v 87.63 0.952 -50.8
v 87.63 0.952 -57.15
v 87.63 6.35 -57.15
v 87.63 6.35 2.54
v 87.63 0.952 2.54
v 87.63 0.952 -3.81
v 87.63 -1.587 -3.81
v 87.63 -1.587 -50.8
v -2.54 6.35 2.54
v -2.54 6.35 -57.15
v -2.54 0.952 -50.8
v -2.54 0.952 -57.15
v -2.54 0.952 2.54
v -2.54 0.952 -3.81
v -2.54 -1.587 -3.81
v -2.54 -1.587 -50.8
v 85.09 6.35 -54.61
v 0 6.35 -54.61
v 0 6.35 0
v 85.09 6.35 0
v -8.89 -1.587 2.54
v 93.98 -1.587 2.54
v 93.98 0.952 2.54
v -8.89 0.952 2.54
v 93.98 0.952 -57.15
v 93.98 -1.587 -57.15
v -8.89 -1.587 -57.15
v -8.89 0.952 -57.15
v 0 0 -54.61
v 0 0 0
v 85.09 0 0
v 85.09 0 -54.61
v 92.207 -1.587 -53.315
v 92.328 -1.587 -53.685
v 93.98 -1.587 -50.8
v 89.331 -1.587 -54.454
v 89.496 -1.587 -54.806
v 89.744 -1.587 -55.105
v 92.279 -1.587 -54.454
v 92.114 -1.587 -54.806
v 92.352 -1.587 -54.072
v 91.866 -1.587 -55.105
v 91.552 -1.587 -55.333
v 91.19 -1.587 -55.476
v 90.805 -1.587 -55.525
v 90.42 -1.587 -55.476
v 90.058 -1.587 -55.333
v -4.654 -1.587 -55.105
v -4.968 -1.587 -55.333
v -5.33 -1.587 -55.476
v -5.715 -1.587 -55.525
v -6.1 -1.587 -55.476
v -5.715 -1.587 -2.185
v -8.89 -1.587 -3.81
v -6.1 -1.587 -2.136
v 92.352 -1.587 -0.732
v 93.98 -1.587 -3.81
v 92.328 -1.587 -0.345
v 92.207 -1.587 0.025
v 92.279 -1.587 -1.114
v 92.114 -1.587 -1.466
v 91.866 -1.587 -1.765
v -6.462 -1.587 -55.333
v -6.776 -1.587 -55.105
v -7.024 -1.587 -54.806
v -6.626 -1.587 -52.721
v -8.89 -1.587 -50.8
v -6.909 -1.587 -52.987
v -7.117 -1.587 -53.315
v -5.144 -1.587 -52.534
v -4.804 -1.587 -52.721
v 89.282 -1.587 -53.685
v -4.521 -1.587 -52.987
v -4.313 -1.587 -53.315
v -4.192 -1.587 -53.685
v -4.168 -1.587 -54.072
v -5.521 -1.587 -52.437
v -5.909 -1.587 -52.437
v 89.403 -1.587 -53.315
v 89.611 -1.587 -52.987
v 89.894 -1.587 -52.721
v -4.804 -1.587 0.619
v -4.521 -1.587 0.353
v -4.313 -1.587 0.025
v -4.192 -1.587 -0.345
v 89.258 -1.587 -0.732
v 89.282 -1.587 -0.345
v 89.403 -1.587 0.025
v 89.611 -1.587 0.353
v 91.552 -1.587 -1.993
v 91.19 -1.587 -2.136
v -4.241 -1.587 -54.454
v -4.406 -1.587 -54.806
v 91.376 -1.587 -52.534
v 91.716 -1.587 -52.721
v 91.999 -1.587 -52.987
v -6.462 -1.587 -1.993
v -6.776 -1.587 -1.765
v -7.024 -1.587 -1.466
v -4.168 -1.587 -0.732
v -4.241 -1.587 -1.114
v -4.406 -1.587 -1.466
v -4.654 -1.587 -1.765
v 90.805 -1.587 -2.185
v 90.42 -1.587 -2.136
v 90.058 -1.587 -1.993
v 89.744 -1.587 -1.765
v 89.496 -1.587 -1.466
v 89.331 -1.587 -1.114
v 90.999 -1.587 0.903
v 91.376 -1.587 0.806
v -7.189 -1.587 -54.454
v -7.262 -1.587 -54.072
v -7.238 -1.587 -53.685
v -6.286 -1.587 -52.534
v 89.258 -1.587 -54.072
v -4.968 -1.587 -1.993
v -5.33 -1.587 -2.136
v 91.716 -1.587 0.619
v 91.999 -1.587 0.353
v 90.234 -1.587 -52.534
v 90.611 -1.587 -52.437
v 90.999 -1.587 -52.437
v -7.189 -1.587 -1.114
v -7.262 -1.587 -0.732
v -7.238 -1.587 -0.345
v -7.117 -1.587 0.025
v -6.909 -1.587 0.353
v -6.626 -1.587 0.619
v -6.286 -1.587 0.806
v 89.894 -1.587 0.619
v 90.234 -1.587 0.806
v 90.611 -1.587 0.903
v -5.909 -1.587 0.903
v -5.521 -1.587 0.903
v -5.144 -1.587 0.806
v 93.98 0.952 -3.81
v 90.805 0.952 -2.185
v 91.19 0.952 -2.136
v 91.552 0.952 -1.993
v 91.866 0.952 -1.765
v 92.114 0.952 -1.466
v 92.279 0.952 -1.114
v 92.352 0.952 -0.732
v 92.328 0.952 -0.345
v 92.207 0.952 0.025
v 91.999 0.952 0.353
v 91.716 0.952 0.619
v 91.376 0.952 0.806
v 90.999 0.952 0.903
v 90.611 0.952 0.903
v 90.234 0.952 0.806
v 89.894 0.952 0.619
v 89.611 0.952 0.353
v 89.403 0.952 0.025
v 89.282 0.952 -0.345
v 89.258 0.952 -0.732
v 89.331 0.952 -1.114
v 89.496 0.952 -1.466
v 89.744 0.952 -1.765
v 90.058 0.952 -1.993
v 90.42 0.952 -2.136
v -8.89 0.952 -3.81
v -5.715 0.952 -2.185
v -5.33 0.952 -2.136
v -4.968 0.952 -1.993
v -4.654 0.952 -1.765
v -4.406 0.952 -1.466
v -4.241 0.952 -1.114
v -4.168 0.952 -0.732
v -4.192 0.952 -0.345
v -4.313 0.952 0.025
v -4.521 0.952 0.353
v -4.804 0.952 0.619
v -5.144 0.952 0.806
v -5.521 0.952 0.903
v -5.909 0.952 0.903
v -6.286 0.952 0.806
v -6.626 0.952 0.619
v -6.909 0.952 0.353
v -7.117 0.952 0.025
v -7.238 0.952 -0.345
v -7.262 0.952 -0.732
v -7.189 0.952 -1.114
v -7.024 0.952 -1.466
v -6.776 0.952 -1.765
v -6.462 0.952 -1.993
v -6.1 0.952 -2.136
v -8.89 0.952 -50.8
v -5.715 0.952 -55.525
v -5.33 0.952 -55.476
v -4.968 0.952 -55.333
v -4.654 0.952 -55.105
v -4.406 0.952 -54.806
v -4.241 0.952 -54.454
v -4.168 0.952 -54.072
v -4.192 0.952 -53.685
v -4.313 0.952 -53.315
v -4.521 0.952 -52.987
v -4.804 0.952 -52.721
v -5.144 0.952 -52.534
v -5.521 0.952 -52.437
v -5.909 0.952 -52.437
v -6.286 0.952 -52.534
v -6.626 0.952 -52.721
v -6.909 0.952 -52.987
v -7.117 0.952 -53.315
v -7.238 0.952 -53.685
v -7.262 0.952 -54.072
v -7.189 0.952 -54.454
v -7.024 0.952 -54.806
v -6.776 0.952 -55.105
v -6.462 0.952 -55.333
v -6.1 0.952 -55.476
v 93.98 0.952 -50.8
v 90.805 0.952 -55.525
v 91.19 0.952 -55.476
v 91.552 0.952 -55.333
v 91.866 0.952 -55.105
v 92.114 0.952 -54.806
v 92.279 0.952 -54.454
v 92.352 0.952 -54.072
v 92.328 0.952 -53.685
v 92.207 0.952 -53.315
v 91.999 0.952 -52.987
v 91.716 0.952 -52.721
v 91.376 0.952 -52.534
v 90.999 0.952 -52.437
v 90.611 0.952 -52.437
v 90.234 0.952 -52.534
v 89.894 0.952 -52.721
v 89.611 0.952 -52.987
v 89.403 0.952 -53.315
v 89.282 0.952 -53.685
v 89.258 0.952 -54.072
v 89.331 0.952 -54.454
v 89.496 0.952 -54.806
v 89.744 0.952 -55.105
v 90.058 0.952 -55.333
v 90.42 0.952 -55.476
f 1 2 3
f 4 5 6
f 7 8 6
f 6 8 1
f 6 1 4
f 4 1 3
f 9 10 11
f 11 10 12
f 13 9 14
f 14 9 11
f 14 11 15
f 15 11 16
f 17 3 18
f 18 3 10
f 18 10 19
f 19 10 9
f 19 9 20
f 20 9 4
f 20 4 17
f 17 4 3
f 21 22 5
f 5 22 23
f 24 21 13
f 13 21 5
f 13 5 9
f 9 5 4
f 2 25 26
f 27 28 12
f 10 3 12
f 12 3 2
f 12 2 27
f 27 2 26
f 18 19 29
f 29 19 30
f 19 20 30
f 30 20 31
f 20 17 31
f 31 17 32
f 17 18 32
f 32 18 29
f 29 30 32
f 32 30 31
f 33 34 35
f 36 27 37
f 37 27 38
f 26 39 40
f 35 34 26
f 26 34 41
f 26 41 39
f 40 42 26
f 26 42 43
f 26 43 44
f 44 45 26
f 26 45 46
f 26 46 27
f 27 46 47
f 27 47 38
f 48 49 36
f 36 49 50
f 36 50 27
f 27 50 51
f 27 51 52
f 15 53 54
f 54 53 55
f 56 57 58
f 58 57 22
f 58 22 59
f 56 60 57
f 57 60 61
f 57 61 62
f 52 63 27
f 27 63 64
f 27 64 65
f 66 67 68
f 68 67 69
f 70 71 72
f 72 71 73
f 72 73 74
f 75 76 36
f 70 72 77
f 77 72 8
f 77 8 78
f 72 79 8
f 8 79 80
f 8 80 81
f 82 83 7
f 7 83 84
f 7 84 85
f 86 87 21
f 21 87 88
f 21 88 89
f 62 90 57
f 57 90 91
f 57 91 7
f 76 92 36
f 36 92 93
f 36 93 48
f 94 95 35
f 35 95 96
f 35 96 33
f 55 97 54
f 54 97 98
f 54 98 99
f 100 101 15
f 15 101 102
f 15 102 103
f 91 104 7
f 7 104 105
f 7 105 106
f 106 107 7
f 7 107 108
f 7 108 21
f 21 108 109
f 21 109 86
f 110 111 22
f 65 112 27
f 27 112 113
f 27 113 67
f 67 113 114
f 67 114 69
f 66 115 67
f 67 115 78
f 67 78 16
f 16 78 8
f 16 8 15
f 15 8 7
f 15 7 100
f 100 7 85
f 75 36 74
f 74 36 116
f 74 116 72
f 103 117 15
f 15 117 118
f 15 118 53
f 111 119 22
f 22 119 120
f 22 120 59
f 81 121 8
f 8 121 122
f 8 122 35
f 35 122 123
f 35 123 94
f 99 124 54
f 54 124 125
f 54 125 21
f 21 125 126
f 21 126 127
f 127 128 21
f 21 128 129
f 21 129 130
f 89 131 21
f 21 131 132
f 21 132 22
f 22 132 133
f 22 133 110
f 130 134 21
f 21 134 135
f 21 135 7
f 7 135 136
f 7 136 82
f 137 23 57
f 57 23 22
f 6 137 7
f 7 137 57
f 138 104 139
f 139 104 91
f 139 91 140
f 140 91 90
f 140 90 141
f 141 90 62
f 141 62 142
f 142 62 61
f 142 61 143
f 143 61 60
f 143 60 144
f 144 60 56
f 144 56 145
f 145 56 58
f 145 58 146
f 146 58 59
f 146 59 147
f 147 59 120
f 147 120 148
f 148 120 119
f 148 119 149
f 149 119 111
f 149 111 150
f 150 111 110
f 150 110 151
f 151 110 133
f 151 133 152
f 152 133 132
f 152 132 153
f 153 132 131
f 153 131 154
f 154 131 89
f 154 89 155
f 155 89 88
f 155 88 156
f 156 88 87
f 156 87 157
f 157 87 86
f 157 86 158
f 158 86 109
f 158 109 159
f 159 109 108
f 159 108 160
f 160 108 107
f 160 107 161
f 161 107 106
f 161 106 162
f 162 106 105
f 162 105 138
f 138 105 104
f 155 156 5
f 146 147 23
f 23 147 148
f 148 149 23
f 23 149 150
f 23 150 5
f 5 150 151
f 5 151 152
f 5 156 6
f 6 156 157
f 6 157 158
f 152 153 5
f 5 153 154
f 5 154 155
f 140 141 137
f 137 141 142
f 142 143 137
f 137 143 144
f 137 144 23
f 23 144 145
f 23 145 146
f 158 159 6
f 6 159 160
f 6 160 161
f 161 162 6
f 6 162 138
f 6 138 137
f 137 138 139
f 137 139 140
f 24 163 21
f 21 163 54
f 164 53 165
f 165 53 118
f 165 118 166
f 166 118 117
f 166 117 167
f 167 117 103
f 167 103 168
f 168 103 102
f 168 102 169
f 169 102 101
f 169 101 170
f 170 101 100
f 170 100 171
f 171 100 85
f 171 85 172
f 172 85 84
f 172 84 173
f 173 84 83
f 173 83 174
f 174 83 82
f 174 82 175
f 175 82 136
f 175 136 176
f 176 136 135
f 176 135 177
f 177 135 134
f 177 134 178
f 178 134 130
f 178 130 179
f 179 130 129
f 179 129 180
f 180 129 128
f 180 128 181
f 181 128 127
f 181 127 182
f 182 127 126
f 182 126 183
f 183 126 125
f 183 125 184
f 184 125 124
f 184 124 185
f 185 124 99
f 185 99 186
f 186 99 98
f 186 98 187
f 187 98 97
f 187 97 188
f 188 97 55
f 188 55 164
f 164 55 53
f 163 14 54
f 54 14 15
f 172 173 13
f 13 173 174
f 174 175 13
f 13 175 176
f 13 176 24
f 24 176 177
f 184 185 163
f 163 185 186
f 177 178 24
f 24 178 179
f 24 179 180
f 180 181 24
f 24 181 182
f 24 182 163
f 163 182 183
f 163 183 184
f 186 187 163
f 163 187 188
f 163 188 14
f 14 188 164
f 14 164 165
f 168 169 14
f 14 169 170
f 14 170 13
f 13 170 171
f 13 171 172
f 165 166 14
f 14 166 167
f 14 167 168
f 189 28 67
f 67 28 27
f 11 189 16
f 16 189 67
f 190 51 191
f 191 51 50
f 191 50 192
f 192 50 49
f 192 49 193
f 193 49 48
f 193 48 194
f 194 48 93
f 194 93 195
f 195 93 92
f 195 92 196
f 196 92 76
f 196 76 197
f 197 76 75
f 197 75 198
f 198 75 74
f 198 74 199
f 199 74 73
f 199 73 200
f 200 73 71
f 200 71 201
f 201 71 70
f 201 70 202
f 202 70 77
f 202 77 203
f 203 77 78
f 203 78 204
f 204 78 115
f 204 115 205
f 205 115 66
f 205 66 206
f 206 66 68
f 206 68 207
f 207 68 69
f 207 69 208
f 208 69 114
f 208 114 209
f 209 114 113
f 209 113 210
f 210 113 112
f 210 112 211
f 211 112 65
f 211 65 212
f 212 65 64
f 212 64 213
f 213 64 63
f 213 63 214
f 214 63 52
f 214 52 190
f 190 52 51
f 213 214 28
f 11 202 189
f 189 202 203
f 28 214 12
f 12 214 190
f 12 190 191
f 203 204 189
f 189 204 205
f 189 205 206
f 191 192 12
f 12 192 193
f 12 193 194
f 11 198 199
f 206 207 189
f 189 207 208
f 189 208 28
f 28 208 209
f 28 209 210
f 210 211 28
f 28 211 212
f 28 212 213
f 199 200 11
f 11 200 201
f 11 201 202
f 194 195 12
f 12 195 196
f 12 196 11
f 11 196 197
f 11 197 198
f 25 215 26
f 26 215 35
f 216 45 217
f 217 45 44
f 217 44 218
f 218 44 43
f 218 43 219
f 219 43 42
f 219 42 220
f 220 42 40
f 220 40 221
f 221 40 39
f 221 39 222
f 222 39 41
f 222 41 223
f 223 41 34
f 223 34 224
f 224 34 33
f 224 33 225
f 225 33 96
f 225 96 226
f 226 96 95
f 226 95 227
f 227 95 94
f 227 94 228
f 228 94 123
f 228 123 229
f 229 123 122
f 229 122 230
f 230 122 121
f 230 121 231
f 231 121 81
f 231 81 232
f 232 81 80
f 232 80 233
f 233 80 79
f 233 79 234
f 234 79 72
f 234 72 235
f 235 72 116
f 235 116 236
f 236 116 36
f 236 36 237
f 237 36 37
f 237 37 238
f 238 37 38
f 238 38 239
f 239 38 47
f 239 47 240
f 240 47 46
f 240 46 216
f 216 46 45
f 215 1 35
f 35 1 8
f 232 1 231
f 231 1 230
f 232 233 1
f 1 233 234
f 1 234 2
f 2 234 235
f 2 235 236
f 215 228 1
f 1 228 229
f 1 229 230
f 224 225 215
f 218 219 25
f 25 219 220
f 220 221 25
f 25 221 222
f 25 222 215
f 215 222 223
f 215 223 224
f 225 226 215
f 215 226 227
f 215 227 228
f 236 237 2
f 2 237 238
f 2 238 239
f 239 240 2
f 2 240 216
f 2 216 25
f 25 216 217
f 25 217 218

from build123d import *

# Parameters (mm, degrees)
SKETCH1_W           = 90.17
SKETCH1_H           = 59.69
SKETCH1_W_2         = 85.09
SKETCH1_H_2         = 54.61
BOSS_EXTRUDE1_DEPTH = 6.35
SKETCH2_W           = 90.17
SKETCH2_H           = 59.69
BOSS_EXTRUDE2_DEPTH = 1.5875
SKETCH3_W           = 6.35
SKETCH3_H           = 6.35
SKETCH3_R           = 1.55
BOSS_EXTRUDE3_DEPTH = 2.54


with BuildPart() as part:
    # Sketch1 → Boss-Extrude1 (new body)
    with BuildSketch(Plane(origin=(0, 0, 0), x_dir=(1, 0, 0), z_dir=(0, 1, 0))):
        with Locations((42.545, 27.305)):
            Rectangle(SKETCH1_W, SKETCH1_H)
        with Locations((42.545, 27.305)):
            Rectangle(SKETCH1_W_2, SKETCH1_H_2, mode=Mode.SUBTRACT)
    extrude(amount=BOSS_EXTRUDE1_DEPTH)

    # Sketch2 → Boss-Extrude2 (add)
    with BuildSketch(Plane.XZ):
        with Locations((42.545, -27.305)):
            Rectangle(SKETCH2_W, SKETCH2_H)
    extrude(amount=BOSS_EXTRUDE2_DEPTH)

    # Sketch3 → Boss-Extrude3 (add)
    # profile 1 of 4: a face of its own
    with BuildSketch(Plane.XZ.offset(1.5875)):
        with Locations((90.805, -0.635)):
            Rectangle(SKETCH3_W, SKETCH3_H)
        with Locations(Location((90.805, -0.635, 0), (0, 0, 270))):
            Circle(SKETCH3_R, mode=Mode.SUBTRACT)
    # profile 2 of 4: a face of its own
    with BuildSketch(Plane.XZ.offset(1.5875)):
        with Locations((-5.715, -0.635)):
            Rectangle(SKETCH3_W, SKETCH3_H)
        with Locations(Location((-5.715, -0.635, 0), (0, 0, 270))):
            Circle(SKETCH3_R, mode=Mode.SUBTRACT)
    # profile 3 of 4: a face of its own
    with BuildSketch(Plane.XZ.offset(1.5875)):
        with Locations((-5.715, -53.975)):
            Rectangle(SKETCH3_W, SKETCH3_H)
        with Locations(Location((-5.715, -53.975, 0), (0, 0, 270))):
            Circle(SKETCH3_R, mode=Mode.SUBTRACT)
    # profile 4 of 4: a face of its own
    with BuildSketch(Plane.XZ.offset(1.5875)):
        with Locations((90.805, -53.975)):
            Rectangle(SKETCH3_W, SKETCH3_H)
        with Locations(Location((90.805, -53.975, 0), (0, 0, 270))):
            Circle(SKETCH3_R, mode=Mode.SUBTRACT)
    extrude(amount=-BOSS_EXTRUDE3_DEPTH)


solid = part.part
